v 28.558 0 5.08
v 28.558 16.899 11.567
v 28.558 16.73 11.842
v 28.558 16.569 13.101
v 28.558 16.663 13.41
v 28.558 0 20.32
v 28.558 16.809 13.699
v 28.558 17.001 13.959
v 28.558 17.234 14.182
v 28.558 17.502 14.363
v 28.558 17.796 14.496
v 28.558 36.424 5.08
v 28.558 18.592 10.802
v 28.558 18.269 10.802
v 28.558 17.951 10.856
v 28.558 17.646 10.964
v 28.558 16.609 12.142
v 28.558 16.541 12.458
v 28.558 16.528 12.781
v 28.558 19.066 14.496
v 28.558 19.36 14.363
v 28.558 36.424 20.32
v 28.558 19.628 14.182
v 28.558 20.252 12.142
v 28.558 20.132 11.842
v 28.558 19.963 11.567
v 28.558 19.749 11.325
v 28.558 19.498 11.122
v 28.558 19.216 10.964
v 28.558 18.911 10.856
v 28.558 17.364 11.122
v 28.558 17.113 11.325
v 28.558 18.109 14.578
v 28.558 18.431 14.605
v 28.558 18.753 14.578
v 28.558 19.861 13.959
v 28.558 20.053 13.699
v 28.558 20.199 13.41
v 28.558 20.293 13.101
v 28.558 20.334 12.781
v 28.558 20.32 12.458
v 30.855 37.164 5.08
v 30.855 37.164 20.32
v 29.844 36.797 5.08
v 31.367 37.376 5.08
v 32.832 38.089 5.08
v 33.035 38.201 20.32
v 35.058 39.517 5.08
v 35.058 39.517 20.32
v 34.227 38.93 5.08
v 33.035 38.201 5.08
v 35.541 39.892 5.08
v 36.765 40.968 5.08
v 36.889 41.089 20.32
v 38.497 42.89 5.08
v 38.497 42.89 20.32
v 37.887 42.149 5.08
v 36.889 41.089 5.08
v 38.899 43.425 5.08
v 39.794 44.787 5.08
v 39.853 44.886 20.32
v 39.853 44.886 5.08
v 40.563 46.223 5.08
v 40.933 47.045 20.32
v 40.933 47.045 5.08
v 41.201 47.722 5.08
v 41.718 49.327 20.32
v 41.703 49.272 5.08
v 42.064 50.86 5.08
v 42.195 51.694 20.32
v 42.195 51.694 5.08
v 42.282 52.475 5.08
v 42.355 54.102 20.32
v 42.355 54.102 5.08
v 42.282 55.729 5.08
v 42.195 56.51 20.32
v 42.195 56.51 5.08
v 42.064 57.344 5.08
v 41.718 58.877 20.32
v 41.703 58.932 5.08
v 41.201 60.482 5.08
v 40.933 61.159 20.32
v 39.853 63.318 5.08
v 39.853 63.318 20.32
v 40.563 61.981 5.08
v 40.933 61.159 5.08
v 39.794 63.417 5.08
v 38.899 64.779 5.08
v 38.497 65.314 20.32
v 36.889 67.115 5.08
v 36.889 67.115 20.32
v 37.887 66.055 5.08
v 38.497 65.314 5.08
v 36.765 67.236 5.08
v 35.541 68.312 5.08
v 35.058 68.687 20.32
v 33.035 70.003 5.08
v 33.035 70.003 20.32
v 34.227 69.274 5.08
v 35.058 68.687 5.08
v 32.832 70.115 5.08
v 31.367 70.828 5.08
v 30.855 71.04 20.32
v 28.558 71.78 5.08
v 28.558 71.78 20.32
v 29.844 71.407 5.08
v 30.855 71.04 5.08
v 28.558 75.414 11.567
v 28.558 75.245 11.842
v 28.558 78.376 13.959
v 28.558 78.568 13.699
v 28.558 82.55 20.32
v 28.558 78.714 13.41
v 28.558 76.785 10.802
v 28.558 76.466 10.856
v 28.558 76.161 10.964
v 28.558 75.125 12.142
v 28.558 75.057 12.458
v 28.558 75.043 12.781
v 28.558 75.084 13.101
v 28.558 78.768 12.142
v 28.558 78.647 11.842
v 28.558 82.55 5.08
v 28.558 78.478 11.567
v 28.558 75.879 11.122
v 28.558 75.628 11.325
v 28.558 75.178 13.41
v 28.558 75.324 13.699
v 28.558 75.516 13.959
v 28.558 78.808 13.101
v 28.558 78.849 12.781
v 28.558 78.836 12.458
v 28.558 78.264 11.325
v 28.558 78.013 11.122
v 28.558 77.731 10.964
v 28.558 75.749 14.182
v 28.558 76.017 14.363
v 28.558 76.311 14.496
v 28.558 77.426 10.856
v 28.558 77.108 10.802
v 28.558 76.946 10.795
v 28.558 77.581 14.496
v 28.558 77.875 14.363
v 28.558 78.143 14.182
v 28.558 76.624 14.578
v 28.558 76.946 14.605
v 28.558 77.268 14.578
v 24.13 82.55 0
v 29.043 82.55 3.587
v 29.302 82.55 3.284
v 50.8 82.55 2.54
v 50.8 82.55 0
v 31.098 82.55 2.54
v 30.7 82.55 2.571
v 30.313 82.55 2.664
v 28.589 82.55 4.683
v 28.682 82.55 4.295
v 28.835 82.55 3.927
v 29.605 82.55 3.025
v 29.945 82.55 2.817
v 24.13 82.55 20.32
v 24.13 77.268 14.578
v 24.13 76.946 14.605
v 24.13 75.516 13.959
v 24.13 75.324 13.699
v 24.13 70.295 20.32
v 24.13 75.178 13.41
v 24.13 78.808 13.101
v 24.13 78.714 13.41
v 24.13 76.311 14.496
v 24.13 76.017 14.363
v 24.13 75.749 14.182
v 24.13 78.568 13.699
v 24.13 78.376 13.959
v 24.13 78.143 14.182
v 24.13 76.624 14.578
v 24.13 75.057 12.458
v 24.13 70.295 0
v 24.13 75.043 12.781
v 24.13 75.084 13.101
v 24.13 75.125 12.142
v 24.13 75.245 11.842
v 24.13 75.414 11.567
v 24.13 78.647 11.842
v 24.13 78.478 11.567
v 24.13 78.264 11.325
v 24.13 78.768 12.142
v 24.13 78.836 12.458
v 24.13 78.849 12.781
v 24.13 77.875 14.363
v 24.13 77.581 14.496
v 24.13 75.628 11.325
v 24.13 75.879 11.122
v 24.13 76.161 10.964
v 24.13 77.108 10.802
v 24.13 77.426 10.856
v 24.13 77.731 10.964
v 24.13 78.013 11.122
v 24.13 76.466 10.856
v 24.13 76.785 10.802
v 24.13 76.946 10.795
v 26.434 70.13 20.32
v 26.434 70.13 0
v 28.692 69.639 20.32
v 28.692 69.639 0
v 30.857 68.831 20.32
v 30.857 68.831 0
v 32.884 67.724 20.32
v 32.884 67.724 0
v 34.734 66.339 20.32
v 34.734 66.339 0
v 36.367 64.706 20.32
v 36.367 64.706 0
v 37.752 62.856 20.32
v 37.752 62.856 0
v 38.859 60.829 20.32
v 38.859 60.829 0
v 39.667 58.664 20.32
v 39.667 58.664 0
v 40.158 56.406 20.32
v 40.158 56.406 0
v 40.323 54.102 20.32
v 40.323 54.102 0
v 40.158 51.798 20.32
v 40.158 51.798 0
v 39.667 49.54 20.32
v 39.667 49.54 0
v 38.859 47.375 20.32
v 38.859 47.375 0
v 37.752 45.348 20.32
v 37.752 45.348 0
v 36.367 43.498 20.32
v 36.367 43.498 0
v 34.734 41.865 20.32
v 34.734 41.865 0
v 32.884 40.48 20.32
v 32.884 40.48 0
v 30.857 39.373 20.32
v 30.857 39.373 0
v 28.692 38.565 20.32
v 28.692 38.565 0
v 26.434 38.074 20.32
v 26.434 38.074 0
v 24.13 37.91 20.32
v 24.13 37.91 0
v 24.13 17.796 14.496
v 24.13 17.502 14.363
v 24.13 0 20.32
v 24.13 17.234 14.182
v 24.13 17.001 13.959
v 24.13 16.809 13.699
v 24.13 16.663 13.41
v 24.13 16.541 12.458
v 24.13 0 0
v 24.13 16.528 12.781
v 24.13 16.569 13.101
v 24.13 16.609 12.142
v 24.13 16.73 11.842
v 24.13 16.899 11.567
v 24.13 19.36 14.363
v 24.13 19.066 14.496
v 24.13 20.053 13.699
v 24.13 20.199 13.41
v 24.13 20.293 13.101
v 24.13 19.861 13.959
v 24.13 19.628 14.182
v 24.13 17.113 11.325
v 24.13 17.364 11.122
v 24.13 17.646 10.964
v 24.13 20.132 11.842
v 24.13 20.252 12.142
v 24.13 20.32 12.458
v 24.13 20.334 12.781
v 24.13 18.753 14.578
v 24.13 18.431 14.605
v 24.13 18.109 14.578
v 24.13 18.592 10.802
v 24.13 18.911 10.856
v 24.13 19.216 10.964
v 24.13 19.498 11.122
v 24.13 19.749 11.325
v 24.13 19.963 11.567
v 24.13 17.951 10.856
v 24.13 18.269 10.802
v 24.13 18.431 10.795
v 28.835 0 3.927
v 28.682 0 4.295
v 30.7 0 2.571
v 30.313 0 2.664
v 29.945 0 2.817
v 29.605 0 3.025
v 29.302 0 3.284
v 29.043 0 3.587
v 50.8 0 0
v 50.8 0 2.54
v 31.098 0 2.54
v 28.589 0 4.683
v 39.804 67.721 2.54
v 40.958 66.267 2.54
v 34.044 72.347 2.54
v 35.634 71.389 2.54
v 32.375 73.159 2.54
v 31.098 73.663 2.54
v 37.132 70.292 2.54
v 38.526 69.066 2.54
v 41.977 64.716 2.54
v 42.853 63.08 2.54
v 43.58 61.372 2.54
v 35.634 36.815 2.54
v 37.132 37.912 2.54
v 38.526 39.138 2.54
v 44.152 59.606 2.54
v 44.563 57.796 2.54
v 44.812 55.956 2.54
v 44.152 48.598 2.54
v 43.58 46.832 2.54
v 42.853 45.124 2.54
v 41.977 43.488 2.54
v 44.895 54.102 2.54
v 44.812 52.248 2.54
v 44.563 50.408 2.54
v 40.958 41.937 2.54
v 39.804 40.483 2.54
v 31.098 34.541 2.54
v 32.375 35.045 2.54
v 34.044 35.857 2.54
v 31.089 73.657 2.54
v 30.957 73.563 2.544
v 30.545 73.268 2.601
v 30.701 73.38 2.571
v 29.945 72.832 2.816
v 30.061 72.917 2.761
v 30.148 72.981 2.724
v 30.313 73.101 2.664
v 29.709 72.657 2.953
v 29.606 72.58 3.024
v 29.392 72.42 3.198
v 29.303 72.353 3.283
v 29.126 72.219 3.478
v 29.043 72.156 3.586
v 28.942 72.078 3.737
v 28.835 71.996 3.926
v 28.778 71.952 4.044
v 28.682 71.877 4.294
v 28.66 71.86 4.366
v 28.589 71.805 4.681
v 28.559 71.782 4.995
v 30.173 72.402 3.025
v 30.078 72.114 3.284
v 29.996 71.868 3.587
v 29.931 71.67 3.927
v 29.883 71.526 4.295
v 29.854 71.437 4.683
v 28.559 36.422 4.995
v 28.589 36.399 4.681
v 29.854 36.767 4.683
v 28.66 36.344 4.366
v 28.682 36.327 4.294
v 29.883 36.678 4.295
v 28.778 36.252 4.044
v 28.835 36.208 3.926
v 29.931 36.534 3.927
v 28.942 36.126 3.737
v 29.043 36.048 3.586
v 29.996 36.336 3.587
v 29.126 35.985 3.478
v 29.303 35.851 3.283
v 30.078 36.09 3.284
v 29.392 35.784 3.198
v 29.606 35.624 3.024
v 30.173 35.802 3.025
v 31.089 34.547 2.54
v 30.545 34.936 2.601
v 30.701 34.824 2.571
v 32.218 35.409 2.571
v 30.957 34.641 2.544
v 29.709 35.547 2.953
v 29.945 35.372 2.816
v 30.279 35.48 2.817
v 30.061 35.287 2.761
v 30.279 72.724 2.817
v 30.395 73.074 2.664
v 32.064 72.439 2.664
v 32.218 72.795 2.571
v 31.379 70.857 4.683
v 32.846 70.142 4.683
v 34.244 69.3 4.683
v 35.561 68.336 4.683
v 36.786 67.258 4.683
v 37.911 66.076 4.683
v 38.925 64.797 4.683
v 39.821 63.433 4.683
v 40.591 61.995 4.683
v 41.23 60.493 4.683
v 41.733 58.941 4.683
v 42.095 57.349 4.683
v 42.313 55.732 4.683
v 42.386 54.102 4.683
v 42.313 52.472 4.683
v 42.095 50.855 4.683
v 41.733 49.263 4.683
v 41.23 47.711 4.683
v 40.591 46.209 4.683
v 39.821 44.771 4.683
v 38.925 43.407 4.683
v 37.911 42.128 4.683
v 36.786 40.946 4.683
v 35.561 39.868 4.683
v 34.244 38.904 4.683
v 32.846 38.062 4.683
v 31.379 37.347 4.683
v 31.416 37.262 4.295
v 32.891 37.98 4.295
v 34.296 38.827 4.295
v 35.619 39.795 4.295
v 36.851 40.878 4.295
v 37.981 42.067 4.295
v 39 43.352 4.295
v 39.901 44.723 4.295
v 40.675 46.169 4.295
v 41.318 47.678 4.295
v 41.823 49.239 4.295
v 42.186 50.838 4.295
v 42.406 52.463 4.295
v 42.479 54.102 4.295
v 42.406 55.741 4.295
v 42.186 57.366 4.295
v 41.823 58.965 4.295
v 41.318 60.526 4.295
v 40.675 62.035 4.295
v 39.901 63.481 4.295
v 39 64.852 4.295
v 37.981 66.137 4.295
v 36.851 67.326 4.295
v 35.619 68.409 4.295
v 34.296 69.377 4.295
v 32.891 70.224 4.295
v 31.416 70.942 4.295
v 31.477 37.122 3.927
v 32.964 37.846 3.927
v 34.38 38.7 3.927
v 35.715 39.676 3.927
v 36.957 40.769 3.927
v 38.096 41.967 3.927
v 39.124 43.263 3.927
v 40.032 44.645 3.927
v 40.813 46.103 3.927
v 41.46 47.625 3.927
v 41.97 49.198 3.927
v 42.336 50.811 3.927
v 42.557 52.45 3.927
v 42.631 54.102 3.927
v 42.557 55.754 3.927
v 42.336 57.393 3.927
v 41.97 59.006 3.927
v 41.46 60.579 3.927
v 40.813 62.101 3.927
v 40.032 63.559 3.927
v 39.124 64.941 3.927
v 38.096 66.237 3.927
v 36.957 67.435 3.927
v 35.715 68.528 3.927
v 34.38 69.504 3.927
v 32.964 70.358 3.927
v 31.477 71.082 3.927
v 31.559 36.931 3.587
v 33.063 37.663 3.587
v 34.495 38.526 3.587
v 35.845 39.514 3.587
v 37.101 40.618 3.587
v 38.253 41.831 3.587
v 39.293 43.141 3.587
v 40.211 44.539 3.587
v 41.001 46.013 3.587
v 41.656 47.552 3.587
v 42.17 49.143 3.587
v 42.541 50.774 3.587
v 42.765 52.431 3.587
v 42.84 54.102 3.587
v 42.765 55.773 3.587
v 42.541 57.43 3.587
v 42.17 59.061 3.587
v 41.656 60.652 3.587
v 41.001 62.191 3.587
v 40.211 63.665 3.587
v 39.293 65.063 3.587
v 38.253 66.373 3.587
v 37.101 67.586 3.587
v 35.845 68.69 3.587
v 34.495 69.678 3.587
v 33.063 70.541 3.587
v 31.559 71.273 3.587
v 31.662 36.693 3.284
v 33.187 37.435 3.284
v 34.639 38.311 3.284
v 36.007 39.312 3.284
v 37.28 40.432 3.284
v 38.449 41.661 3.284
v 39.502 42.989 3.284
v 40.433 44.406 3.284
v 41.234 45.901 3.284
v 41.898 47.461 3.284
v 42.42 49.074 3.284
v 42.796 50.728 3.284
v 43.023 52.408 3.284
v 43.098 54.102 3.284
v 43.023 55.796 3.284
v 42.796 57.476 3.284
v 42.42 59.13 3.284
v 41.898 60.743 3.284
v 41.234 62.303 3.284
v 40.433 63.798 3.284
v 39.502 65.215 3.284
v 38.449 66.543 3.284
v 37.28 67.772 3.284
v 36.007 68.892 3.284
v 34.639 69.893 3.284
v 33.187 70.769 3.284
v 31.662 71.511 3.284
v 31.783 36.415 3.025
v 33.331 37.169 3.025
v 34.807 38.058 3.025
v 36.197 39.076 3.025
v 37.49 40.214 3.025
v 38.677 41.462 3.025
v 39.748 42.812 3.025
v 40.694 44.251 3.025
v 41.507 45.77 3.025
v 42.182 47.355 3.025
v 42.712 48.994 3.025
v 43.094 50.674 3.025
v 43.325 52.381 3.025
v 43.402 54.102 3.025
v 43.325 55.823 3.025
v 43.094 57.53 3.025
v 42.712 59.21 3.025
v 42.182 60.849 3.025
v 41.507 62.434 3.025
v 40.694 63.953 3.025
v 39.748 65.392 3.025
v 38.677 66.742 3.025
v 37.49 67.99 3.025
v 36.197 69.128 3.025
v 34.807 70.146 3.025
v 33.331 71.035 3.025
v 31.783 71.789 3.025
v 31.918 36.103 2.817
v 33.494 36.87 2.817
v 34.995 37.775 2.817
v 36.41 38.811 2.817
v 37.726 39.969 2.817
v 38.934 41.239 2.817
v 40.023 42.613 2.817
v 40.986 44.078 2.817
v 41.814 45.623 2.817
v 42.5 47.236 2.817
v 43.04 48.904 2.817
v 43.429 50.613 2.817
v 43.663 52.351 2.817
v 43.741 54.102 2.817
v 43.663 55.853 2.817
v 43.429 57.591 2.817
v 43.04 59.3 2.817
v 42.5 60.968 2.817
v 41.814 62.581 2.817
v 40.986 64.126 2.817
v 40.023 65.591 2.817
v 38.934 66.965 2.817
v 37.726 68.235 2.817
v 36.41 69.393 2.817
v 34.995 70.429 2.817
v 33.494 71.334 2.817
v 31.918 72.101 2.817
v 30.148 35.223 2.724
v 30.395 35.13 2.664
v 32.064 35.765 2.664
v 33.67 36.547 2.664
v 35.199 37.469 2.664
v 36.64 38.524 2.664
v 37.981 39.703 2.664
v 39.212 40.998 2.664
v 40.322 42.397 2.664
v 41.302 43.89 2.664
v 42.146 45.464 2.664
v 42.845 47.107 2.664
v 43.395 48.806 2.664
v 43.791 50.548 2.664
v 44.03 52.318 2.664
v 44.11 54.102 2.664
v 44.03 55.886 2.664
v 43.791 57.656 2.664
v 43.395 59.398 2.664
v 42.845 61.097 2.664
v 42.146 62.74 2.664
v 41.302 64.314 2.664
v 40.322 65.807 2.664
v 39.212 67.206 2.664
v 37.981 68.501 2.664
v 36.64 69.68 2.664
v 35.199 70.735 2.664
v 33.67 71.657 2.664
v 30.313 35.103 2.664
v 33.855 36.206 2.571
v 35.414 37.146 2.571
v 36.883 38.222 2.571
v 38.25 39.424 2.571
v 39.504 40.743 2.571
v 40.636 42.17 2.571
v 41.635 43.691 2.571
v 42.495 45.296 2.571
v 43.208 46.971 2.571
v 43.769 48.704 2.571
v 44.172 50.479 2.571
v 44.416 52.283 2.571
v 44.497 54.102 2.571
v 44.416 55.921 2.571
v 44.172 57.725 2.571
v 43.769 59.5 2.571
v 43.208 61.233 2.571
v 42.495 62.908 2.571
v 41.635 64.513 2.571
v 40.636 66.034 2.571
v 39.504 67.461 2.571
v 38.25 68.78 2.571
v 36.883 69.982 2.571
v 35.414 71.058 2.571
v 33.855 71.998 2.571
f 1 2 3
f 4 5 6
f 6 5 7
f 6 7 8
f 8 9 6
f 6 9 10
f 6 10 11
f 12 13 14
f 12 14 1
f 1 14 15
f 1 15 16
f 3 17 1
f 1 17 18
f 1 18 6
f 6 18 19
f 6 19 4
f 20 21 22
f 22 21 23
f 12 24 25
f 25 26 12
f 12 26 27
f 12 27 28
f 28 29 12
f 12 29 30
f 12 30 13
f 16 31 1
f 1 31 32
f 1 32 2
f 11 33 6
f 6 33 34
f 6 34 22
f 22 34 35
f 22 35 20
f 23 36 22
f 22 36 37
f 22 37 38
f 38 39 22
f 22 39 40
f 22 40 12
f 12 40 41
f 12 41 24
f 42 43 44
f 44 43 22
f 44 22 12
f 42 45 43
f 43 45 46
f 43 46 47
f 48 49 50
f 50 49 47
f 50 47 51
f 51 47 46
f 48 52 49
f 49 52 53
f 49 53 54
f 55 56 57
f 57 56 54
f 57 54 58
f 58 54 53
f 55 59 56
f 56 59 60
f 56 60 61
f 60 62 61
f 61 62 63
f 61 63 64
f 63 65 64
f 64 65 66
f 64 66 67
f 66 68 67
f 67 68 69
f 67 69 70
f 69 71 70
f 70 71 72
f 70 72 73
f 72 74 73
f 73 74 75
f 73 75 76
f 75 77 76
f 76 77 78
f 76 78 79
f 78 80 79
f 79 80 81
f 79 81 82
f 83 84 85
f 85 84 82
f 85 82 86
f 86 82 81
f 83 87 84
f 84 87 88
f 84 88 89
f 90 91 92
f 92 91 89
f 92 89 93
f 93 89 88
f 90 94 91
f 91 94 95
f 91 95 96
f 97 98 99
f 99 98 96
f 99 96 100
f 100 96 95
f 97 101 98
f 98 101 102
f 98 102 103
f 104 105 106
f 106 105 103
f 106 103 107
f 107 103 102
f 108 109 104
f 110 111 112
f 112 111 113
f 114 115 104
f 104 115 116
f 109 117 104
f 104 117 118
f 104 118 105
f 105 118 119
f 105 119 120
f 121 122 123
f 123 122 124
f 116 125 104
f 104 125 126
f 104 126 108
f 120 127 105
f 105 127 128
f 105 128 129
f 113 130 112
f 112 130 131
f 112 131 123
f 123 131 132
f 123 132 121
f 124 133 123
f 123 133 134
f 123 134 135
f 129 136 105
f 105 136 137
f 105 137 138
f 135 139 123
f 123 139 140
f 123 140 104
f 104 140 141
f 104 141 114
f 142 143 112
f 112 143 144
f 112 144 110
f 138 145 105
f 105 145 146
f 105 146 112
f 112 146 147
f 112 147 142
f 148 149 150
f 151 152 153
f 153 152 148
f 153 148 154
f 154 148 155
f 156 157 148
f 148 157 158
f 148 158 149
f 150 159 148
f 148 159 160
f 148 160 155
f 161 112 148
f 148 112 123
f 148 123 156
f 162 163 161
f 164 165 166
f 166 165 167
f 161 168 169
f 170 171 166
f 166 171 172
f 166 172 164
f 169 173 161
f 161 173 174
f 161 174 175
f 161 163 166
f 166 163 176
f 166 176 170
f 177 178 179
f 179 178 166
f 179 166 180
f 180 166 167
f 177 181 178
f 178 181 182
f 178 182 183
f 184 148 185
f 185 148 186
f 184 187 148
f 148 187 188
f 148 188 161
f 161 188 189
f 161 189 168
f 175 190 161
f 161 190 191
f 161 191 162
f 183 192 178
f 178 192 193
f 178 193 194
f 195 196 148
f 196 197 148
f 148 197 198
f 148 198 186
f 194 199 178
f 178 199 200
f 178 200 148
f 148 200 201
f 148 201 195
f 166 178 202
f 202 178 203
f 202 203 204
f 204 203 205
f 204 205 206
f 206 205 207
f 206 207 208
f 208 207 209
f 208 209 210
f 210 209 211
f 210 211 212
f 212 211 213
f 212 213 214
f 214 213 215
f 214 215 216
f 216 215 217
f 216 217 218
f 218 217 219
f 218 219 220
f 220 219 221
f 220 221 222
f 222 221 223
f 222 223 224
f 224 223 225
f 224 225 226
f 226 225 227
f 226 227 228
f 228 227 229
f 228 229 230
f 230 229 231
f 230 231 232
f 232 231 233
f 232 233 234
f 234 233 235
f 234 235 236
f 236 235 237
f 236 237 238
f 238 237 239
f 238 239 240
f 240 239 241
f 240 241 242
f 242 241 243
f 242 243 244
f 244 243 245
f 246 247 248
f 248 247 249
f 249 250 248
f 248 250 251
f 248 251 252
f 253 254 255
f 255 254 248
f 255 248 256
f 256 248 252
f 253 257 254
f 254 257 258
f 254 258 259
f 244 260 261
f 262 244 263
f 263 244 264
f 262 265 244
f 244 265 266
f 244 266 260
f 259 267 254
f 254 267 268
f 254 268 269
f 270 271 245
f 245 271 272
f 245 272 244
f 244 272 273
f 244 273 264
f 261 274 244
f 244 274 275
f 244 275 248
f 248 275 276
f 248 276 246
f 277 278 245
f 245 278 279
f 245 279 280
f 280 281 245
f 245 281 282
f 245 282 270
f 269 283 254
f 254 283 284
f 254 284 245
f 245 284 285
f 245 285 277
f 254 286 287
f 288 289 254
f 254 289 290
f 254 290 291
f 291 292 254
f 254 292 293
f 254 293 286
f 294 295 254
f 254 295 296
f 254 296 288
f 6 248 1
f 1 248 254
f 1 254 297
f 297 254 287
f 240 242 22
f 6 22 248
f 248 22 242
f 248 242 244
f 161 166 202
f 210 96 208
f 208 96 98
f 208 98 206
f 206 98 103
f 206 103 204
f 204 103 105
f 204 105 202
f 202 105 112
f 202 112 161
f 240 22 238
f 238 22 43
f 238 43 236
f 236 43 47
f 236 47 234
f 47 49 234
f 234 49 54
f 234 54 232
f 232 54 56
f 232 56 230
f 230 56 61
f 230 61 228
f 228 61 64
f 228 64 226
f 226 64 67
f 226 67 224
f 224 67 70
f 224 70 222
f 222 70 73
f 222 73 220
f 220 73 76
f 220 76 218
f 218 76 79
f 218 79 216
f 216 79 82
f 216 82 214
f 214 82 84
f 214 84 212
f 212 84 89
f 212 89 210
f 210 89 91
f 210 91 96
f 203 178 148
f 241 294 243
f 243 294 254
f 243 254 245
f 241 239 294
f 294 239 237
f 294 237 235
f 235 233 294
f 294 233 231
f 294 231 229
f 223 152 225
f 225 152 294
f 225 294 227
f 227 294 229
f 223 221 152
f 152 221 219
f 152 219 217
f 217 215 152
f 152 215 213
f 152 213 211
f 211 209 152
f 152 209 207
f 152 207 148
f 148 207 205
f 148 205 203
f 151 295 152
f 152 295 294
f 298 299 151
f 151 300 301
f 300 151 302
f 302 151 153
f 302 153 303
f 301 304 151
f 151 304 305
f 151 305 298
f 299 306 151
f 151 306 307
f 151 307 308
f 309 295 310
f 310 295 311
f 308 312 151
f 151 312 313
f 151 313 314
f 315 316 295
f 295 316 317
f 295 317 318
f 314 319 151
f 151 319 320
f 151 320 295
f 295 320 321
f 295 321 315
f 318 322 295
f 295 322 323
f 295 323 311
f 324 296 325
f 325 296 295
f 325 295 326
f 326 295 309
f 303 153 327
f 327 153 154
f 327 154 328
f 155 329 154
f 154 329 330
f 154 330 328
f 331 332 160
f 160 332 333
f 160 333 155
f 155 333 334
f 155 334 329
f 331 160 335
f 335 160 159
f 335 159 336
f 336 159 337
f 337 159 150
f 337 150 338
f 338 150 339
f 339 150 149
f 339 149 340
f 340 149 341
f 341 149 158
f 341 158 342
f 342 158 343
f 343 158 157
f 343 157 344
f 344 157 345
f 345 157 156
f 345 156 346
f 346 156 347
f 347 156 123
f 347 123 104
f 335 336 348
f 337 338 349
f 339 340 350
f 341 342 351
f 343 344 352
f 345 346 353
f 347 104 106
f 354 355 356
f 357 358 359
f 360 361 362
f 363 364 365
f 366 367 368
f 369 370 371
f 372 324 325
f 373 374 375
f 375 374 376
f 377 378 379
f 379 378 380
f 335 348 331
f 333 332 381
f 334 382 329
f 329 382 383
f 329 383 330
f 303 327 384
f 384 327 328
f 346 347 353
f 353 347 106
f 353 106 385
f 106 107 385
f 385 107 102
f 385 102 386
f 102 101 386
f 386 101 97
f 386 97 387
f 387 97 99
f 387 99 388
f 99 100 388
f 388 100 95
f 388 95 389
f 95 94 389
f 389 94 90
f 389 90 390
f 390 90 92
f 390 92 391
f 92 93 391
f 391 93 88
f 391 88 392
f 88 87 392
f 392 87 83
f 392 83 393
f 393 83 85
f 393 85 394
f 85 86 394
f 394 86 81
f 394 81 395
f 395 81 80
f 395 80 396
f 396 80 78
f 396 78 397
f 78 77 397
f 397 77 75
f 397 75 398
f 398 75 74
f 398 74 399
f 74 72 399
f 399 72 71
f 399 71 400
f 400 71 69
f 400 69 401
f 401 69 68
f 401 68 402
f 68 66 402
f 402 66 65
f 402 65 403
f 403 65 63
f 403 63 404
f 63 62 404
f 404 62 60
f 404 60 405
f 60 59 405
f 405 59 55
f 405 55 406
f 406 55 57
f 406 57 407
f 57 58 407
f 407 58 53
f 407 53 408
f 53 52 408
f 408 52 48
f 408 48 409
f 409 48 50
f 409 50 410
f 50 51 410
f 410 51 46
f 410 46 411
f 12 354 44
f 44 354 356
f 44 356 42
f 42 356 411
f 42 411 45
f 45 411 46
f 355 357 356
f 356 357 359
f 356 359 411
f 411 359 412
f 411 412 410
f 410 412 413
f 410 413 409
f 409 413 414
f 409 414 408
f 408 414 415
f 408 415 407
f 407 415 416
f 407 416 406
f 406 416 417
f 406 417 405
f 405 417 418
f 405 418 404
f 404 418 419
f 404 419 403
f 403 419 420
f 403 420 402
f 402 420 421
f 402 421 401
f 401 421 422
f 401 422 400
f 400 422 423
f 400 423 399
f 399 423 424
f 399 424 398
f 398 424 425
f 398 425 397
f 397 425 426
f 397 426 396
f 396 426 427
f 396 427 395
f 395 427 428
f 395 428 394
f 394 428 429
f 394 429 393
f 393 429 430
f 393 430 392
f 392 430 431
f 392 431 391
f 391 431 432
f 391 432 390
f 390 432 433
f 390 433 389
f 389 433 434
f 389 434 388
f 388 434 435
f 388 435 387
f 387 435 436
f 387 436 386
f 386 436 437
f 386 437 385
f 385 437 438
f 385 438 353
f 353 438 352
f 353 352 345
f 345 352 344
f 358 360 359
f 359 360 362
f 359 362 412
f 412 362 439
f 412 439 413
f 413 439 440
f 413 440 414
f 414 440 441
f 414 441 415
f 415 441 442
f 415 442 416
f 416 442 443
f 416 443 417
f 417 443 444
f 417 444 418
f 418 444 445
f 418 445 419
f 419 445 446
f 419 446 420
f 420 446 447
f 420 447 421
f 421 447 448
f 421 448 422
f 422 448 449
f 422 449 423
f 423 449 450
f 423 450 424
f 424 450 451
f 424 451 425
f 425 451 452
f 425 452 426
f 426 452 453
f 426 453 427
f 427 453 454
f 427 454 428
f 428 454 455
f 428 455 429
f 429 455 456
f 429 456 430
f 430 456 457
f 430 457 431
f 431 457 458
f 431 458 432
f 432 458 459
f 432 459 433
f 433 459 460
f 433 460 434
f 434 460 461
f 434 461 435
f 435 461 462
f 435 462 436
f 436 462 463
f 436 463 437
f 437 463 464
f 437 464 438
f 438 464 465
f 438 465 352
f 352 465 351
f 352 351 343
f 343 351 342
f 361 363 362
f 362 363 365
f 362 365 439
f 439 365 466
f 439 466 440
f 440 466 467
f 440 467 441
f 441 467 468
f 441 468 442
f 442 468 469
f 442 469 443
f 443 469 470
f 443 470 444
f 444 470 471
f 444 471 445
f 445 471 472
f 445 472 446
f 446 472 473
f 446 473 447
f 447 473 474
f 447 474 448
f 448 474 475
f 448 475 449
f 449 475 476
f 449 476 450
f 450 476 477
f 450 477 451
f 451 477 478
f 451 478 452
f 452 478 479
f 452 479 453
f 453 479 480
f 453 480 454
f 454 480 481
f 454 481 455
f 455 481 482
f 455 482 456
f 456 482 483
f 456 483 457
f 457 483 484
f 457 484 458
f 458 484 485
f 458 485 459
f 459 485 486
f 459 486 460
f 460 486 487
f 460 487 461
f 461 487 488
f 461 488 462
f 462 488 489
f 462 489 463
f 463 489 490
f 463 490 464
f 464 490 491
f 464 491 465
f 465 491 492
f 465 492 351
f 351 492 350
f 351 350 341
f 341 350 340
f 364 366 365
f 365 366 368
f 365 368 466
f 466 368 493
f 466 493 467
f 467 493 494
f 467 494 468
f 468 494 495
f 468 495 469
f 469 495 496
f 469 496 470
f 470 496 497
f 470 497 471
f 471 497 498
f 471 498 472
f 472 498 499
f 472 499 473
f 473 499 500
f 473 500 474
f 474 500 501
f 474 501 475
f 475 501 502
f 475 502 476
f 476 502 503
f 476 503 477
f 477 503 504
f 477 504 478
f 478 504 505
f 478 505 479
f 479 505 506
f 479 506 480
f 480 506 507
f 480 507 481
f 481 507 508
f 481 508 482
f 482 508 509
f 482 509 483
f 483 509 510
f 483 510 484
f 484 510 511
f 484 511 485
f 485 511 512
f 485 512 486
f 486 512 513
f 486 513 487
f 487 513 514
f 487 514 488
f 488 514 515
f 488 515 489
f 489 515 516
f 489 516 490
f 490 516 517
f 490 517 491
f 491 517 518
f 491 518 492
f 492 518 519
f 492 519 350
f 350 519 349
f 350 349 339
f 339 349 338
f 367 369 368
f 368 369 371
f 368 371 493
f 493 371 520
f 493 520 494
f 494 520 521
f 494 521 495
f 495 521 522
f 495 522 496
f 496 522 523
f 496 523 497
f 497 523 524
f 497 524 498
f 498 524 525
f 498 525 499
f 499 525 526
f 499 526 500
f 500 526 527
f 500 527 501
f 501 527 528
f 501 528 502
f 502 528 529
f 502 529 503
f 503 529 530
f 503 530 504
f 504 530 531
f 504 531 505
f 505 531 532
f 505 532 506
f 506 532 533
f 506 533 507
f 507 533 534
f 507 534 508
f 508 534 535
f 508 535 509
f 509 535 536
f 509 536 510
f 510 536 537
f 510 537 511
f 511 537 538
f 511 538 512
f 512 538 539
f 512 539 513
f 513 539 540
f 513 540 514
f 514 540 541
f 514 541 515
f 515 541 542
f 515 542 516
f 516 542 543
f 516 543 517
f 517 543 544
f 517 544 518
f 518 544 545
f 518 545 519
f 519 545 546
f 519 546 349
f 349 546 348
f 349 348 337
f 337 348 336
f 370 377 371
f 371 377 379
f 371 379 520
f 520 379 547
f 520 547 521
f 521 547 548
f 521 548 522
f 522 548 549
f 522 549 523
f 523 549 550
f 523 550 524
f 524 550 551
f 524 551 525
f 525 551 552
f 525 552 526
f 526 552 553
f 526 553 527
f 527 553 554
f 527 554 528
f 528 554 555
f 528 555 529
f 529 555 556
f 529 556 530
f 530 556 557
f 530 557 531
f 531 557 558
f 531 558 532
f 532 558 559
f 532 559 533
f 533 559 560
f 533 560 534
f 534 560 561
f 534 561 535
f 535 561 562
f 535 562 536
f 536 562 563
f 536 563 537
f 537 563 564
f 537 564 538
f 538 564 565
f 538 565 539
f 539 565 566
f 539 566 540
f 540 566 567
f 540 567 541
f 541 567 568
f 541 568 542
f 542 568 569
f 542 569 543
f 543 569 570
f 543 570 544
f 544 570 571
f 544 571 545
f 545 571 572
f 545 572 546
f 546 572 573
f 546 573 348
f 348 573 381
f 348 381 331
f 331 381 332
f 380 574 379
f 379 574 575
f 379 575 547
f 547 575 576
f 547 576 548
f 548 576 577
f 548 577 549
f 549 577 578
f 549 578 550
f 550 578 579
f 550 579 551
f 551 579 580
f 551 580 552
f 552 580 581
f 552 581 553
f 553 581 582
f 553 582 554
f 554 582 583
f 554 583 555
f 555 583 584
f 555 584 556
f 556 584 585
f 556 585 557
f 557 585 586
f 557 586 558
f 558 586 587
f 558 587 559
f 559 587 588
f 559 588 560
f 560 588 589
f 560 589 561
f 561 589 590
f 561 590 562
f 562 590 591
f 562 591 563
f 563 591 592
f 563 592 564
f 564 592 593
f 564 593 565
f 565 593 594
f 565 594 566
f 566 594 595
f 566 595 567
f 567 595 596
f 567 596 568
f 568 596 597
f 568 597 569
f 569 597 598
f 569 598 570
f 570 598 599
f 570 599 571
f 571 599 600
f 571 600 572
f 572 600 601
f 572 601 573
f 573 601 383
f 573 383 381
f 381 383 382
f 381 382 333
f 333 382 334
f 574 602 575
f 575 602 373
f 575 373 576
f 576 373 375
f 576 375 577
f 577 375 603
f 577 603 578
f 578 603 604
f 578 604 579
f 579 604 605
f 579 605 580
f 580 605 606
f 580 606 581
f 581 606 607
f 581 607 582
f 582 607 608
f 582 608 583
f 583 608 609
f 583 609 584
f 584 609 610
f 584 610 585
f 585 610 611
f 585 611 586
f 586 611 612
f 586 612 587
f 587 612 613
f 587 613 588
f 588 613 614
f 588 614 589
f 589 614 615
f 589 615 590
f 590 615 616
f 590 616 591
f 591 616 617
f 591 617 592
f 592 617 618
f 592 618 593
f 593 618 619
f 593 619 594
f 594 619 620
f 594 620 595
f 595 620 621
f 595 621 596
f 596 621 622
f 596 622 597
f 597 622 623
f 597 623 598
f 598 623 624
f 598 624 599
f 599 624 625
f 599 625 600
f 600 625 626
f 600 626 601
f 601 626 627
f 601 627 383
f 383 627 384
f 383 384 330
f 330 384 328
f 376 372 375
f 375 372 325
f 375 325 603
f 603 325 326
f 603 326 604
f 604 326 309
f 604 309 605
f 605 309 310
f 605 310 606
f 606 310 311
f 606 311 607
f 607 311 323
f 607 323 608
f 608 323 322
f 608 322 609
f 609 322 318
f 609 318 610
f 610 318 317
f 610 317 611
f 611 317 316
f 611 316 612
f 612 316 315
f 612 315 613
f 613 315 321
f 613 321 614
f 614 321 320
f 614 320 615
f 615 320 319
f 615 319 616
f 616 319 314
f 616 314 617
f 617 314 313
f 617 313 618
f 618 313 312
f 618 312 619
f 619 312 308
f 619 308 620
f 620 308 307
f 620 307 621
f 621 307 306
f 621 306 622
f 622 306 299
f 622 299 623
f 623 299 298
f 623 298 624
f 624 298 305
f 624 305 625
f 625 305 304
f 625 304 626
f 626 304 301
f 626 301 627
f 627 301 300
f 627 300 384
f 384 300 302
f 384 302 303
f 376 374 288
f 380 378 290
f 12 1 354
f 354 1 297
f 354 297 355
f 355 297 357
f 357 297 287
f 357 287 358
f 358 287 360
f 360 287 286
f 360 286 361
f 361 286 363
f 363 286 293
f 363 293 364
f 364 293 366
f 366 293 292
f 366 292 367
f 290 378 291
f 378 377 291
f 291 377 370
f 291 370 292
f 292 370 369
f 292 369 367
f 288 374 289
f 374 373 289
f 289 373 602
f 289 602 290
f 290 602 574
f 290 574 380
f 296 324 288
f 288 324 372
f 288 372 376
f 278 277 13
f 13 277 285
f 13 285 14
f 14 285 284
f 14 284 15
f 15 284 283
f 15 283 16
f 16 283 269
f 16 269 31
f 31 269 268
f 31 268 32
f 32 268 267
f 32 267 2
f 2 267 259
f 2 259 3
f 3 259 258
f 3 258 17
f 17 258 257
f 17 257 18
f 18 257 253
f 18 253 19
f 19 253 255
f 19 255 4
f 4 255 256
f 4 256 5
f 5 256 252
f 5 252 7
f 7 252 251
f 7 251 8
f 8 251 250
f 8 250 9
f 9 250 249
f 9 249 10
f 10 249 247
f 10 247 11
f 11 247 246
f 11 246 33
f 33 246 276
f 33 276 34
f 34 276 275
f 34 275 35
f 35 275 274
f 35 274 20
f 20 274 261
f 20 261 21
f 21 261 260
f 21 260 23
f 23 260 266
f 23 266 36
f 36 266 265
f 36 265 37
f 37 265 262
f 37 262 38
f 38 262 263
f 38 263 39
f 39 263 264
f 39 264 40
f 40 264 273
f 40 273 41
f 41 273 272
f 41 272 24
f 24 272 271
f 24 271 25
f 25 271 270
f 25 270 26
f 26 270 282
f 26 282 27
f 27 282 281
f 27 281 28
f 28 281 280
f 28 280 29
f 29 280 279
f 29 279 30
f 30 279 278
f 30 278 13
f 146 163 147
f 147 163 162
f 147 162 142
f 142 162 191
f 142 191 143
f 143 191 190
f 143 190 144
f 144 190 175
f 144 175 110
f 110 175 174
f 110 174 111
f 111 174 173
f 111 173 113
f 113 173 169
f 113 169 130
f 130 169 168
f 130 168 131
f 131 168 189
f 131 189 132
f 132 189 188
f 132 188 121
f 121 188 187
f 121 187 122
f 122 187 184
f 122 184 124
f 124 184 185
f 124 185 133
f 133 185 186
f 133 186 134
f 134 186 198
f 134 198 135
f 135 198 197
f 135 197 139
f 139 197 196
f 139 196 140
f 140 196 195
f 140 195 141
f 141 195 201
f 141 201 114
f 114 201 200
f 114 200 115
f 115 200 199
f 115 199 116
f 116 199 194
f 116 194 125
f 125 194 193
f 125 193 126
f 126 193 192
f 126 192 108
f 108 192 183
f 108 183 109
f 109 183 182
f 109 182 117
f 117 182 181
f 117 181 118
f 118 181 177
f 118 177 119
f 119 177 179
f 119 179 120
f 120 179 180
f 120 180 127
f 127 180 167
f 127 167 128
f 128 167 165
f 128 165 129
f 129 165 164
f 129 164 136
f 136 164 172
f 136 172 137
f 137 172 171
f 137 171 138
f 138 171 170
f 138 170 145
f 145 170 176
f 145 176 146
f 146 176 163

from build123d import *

# Parameters (mm, degrees)
BOSS_EXTRUDE3_DEPTH     = 20.32
BOSS_EXTRUDE4_DEPTH     = 2.54
FILLET2_R               = 2.54
SKETCH3_R               = 1.905
CUT_EXTRUDE2_DEPTH      = 51.8
CUT_EXTRUDE2_DEPTH_BACK = 1


with BuildPart() as part:
    # Sketch2 → Boss-Extrude3 (new body)
    with BuildSketch(Plane.XY):
        with BuildLine():
            Line((24.13, 37.9095), (24.13, 0))
            Line((24.13, 0), (28.557757617, 0))
            Line((28.557757617, 0), (28.557757617, 36.423556552))
            ThreePointArc((28.557757617, 36.423556552), (42.3545, 54.102), (28.557757617, 71.780443448))
            Line((28.557757617, 71.780443448), (28.557757617, 82.55))
            Line((28.557757617, 82.55), (24.13, 82.55))
            Line((24.13, 82.55), (24.13, 70.2945))
            ThreePointArc((24.13, 70.2945), (35.579826554, 65.551826554), (40.3225, 54.102))
            ThreePointArc((40.3225, 54.102), (35.579826554, 42.652173446), (24.13, 37.9095))
        make_face()
    extrude(amount=BOSS_EXTRUDE3_DEPTH)

    # Sketch2<5> → Boss-Extrude4 (add)
    with BuildSketch(Plane.XY):
        with BuildLine():
            Line((28.557757617, 36.423556552), (28.557757617, 0))
            Line((28.557757617, 0), (50.8, 0))
            Line((50.8, 0), (50.8, 82.55))
            Line((50.8, 82.55), (28.557757617, 82.55))
            Line((28.557757617, 82.55), (28.557757617, 71.780443448))
            ThreePointArc((28.557757617, 71.780443448), (42.3545, 54.102), (28.557757617, 36.423556552))
        make_face()
    extrude(amount=BOSS_EXTRUDE4_DEPTH)

    # Fillet2
    fillet2_edges = [part.edges().sort_by_distance(p)[0] for p in [
        (42.3545, 54.102, 2.54),
        (28.557757617, 18.211778276, 2.54),
        (28.557757617, 77.165221724, 2.54),
    ]]
    fillet(fillet2_edges, radius=FILLET2_R)

    # Sketch3 → Cut-Extrude2 (cut, two sides)
    with BuildSketch(Plane(origin=(0, 0, 0), x_dir=(0, 0, -1), z_dir=(1, 0, 0))) as cut_extrude2_sk:
        with Locations((-12.7, 18.430889618)):
            Circle(SKETCH3_R)
        with Locations((-12.7, 76.946110382)):
            Circle(SKETCH3_R)
    extrude(amount=CUT_EXTRUDE2_DEPTH, mode=Mode.SUBTRACT)
    extrude(cut_extrude2_sk.sketch, amount=-CUT_EXTRUDE2_DEPTH_BACK, mode=Mode.SUBTRACT)


solid = part.part
